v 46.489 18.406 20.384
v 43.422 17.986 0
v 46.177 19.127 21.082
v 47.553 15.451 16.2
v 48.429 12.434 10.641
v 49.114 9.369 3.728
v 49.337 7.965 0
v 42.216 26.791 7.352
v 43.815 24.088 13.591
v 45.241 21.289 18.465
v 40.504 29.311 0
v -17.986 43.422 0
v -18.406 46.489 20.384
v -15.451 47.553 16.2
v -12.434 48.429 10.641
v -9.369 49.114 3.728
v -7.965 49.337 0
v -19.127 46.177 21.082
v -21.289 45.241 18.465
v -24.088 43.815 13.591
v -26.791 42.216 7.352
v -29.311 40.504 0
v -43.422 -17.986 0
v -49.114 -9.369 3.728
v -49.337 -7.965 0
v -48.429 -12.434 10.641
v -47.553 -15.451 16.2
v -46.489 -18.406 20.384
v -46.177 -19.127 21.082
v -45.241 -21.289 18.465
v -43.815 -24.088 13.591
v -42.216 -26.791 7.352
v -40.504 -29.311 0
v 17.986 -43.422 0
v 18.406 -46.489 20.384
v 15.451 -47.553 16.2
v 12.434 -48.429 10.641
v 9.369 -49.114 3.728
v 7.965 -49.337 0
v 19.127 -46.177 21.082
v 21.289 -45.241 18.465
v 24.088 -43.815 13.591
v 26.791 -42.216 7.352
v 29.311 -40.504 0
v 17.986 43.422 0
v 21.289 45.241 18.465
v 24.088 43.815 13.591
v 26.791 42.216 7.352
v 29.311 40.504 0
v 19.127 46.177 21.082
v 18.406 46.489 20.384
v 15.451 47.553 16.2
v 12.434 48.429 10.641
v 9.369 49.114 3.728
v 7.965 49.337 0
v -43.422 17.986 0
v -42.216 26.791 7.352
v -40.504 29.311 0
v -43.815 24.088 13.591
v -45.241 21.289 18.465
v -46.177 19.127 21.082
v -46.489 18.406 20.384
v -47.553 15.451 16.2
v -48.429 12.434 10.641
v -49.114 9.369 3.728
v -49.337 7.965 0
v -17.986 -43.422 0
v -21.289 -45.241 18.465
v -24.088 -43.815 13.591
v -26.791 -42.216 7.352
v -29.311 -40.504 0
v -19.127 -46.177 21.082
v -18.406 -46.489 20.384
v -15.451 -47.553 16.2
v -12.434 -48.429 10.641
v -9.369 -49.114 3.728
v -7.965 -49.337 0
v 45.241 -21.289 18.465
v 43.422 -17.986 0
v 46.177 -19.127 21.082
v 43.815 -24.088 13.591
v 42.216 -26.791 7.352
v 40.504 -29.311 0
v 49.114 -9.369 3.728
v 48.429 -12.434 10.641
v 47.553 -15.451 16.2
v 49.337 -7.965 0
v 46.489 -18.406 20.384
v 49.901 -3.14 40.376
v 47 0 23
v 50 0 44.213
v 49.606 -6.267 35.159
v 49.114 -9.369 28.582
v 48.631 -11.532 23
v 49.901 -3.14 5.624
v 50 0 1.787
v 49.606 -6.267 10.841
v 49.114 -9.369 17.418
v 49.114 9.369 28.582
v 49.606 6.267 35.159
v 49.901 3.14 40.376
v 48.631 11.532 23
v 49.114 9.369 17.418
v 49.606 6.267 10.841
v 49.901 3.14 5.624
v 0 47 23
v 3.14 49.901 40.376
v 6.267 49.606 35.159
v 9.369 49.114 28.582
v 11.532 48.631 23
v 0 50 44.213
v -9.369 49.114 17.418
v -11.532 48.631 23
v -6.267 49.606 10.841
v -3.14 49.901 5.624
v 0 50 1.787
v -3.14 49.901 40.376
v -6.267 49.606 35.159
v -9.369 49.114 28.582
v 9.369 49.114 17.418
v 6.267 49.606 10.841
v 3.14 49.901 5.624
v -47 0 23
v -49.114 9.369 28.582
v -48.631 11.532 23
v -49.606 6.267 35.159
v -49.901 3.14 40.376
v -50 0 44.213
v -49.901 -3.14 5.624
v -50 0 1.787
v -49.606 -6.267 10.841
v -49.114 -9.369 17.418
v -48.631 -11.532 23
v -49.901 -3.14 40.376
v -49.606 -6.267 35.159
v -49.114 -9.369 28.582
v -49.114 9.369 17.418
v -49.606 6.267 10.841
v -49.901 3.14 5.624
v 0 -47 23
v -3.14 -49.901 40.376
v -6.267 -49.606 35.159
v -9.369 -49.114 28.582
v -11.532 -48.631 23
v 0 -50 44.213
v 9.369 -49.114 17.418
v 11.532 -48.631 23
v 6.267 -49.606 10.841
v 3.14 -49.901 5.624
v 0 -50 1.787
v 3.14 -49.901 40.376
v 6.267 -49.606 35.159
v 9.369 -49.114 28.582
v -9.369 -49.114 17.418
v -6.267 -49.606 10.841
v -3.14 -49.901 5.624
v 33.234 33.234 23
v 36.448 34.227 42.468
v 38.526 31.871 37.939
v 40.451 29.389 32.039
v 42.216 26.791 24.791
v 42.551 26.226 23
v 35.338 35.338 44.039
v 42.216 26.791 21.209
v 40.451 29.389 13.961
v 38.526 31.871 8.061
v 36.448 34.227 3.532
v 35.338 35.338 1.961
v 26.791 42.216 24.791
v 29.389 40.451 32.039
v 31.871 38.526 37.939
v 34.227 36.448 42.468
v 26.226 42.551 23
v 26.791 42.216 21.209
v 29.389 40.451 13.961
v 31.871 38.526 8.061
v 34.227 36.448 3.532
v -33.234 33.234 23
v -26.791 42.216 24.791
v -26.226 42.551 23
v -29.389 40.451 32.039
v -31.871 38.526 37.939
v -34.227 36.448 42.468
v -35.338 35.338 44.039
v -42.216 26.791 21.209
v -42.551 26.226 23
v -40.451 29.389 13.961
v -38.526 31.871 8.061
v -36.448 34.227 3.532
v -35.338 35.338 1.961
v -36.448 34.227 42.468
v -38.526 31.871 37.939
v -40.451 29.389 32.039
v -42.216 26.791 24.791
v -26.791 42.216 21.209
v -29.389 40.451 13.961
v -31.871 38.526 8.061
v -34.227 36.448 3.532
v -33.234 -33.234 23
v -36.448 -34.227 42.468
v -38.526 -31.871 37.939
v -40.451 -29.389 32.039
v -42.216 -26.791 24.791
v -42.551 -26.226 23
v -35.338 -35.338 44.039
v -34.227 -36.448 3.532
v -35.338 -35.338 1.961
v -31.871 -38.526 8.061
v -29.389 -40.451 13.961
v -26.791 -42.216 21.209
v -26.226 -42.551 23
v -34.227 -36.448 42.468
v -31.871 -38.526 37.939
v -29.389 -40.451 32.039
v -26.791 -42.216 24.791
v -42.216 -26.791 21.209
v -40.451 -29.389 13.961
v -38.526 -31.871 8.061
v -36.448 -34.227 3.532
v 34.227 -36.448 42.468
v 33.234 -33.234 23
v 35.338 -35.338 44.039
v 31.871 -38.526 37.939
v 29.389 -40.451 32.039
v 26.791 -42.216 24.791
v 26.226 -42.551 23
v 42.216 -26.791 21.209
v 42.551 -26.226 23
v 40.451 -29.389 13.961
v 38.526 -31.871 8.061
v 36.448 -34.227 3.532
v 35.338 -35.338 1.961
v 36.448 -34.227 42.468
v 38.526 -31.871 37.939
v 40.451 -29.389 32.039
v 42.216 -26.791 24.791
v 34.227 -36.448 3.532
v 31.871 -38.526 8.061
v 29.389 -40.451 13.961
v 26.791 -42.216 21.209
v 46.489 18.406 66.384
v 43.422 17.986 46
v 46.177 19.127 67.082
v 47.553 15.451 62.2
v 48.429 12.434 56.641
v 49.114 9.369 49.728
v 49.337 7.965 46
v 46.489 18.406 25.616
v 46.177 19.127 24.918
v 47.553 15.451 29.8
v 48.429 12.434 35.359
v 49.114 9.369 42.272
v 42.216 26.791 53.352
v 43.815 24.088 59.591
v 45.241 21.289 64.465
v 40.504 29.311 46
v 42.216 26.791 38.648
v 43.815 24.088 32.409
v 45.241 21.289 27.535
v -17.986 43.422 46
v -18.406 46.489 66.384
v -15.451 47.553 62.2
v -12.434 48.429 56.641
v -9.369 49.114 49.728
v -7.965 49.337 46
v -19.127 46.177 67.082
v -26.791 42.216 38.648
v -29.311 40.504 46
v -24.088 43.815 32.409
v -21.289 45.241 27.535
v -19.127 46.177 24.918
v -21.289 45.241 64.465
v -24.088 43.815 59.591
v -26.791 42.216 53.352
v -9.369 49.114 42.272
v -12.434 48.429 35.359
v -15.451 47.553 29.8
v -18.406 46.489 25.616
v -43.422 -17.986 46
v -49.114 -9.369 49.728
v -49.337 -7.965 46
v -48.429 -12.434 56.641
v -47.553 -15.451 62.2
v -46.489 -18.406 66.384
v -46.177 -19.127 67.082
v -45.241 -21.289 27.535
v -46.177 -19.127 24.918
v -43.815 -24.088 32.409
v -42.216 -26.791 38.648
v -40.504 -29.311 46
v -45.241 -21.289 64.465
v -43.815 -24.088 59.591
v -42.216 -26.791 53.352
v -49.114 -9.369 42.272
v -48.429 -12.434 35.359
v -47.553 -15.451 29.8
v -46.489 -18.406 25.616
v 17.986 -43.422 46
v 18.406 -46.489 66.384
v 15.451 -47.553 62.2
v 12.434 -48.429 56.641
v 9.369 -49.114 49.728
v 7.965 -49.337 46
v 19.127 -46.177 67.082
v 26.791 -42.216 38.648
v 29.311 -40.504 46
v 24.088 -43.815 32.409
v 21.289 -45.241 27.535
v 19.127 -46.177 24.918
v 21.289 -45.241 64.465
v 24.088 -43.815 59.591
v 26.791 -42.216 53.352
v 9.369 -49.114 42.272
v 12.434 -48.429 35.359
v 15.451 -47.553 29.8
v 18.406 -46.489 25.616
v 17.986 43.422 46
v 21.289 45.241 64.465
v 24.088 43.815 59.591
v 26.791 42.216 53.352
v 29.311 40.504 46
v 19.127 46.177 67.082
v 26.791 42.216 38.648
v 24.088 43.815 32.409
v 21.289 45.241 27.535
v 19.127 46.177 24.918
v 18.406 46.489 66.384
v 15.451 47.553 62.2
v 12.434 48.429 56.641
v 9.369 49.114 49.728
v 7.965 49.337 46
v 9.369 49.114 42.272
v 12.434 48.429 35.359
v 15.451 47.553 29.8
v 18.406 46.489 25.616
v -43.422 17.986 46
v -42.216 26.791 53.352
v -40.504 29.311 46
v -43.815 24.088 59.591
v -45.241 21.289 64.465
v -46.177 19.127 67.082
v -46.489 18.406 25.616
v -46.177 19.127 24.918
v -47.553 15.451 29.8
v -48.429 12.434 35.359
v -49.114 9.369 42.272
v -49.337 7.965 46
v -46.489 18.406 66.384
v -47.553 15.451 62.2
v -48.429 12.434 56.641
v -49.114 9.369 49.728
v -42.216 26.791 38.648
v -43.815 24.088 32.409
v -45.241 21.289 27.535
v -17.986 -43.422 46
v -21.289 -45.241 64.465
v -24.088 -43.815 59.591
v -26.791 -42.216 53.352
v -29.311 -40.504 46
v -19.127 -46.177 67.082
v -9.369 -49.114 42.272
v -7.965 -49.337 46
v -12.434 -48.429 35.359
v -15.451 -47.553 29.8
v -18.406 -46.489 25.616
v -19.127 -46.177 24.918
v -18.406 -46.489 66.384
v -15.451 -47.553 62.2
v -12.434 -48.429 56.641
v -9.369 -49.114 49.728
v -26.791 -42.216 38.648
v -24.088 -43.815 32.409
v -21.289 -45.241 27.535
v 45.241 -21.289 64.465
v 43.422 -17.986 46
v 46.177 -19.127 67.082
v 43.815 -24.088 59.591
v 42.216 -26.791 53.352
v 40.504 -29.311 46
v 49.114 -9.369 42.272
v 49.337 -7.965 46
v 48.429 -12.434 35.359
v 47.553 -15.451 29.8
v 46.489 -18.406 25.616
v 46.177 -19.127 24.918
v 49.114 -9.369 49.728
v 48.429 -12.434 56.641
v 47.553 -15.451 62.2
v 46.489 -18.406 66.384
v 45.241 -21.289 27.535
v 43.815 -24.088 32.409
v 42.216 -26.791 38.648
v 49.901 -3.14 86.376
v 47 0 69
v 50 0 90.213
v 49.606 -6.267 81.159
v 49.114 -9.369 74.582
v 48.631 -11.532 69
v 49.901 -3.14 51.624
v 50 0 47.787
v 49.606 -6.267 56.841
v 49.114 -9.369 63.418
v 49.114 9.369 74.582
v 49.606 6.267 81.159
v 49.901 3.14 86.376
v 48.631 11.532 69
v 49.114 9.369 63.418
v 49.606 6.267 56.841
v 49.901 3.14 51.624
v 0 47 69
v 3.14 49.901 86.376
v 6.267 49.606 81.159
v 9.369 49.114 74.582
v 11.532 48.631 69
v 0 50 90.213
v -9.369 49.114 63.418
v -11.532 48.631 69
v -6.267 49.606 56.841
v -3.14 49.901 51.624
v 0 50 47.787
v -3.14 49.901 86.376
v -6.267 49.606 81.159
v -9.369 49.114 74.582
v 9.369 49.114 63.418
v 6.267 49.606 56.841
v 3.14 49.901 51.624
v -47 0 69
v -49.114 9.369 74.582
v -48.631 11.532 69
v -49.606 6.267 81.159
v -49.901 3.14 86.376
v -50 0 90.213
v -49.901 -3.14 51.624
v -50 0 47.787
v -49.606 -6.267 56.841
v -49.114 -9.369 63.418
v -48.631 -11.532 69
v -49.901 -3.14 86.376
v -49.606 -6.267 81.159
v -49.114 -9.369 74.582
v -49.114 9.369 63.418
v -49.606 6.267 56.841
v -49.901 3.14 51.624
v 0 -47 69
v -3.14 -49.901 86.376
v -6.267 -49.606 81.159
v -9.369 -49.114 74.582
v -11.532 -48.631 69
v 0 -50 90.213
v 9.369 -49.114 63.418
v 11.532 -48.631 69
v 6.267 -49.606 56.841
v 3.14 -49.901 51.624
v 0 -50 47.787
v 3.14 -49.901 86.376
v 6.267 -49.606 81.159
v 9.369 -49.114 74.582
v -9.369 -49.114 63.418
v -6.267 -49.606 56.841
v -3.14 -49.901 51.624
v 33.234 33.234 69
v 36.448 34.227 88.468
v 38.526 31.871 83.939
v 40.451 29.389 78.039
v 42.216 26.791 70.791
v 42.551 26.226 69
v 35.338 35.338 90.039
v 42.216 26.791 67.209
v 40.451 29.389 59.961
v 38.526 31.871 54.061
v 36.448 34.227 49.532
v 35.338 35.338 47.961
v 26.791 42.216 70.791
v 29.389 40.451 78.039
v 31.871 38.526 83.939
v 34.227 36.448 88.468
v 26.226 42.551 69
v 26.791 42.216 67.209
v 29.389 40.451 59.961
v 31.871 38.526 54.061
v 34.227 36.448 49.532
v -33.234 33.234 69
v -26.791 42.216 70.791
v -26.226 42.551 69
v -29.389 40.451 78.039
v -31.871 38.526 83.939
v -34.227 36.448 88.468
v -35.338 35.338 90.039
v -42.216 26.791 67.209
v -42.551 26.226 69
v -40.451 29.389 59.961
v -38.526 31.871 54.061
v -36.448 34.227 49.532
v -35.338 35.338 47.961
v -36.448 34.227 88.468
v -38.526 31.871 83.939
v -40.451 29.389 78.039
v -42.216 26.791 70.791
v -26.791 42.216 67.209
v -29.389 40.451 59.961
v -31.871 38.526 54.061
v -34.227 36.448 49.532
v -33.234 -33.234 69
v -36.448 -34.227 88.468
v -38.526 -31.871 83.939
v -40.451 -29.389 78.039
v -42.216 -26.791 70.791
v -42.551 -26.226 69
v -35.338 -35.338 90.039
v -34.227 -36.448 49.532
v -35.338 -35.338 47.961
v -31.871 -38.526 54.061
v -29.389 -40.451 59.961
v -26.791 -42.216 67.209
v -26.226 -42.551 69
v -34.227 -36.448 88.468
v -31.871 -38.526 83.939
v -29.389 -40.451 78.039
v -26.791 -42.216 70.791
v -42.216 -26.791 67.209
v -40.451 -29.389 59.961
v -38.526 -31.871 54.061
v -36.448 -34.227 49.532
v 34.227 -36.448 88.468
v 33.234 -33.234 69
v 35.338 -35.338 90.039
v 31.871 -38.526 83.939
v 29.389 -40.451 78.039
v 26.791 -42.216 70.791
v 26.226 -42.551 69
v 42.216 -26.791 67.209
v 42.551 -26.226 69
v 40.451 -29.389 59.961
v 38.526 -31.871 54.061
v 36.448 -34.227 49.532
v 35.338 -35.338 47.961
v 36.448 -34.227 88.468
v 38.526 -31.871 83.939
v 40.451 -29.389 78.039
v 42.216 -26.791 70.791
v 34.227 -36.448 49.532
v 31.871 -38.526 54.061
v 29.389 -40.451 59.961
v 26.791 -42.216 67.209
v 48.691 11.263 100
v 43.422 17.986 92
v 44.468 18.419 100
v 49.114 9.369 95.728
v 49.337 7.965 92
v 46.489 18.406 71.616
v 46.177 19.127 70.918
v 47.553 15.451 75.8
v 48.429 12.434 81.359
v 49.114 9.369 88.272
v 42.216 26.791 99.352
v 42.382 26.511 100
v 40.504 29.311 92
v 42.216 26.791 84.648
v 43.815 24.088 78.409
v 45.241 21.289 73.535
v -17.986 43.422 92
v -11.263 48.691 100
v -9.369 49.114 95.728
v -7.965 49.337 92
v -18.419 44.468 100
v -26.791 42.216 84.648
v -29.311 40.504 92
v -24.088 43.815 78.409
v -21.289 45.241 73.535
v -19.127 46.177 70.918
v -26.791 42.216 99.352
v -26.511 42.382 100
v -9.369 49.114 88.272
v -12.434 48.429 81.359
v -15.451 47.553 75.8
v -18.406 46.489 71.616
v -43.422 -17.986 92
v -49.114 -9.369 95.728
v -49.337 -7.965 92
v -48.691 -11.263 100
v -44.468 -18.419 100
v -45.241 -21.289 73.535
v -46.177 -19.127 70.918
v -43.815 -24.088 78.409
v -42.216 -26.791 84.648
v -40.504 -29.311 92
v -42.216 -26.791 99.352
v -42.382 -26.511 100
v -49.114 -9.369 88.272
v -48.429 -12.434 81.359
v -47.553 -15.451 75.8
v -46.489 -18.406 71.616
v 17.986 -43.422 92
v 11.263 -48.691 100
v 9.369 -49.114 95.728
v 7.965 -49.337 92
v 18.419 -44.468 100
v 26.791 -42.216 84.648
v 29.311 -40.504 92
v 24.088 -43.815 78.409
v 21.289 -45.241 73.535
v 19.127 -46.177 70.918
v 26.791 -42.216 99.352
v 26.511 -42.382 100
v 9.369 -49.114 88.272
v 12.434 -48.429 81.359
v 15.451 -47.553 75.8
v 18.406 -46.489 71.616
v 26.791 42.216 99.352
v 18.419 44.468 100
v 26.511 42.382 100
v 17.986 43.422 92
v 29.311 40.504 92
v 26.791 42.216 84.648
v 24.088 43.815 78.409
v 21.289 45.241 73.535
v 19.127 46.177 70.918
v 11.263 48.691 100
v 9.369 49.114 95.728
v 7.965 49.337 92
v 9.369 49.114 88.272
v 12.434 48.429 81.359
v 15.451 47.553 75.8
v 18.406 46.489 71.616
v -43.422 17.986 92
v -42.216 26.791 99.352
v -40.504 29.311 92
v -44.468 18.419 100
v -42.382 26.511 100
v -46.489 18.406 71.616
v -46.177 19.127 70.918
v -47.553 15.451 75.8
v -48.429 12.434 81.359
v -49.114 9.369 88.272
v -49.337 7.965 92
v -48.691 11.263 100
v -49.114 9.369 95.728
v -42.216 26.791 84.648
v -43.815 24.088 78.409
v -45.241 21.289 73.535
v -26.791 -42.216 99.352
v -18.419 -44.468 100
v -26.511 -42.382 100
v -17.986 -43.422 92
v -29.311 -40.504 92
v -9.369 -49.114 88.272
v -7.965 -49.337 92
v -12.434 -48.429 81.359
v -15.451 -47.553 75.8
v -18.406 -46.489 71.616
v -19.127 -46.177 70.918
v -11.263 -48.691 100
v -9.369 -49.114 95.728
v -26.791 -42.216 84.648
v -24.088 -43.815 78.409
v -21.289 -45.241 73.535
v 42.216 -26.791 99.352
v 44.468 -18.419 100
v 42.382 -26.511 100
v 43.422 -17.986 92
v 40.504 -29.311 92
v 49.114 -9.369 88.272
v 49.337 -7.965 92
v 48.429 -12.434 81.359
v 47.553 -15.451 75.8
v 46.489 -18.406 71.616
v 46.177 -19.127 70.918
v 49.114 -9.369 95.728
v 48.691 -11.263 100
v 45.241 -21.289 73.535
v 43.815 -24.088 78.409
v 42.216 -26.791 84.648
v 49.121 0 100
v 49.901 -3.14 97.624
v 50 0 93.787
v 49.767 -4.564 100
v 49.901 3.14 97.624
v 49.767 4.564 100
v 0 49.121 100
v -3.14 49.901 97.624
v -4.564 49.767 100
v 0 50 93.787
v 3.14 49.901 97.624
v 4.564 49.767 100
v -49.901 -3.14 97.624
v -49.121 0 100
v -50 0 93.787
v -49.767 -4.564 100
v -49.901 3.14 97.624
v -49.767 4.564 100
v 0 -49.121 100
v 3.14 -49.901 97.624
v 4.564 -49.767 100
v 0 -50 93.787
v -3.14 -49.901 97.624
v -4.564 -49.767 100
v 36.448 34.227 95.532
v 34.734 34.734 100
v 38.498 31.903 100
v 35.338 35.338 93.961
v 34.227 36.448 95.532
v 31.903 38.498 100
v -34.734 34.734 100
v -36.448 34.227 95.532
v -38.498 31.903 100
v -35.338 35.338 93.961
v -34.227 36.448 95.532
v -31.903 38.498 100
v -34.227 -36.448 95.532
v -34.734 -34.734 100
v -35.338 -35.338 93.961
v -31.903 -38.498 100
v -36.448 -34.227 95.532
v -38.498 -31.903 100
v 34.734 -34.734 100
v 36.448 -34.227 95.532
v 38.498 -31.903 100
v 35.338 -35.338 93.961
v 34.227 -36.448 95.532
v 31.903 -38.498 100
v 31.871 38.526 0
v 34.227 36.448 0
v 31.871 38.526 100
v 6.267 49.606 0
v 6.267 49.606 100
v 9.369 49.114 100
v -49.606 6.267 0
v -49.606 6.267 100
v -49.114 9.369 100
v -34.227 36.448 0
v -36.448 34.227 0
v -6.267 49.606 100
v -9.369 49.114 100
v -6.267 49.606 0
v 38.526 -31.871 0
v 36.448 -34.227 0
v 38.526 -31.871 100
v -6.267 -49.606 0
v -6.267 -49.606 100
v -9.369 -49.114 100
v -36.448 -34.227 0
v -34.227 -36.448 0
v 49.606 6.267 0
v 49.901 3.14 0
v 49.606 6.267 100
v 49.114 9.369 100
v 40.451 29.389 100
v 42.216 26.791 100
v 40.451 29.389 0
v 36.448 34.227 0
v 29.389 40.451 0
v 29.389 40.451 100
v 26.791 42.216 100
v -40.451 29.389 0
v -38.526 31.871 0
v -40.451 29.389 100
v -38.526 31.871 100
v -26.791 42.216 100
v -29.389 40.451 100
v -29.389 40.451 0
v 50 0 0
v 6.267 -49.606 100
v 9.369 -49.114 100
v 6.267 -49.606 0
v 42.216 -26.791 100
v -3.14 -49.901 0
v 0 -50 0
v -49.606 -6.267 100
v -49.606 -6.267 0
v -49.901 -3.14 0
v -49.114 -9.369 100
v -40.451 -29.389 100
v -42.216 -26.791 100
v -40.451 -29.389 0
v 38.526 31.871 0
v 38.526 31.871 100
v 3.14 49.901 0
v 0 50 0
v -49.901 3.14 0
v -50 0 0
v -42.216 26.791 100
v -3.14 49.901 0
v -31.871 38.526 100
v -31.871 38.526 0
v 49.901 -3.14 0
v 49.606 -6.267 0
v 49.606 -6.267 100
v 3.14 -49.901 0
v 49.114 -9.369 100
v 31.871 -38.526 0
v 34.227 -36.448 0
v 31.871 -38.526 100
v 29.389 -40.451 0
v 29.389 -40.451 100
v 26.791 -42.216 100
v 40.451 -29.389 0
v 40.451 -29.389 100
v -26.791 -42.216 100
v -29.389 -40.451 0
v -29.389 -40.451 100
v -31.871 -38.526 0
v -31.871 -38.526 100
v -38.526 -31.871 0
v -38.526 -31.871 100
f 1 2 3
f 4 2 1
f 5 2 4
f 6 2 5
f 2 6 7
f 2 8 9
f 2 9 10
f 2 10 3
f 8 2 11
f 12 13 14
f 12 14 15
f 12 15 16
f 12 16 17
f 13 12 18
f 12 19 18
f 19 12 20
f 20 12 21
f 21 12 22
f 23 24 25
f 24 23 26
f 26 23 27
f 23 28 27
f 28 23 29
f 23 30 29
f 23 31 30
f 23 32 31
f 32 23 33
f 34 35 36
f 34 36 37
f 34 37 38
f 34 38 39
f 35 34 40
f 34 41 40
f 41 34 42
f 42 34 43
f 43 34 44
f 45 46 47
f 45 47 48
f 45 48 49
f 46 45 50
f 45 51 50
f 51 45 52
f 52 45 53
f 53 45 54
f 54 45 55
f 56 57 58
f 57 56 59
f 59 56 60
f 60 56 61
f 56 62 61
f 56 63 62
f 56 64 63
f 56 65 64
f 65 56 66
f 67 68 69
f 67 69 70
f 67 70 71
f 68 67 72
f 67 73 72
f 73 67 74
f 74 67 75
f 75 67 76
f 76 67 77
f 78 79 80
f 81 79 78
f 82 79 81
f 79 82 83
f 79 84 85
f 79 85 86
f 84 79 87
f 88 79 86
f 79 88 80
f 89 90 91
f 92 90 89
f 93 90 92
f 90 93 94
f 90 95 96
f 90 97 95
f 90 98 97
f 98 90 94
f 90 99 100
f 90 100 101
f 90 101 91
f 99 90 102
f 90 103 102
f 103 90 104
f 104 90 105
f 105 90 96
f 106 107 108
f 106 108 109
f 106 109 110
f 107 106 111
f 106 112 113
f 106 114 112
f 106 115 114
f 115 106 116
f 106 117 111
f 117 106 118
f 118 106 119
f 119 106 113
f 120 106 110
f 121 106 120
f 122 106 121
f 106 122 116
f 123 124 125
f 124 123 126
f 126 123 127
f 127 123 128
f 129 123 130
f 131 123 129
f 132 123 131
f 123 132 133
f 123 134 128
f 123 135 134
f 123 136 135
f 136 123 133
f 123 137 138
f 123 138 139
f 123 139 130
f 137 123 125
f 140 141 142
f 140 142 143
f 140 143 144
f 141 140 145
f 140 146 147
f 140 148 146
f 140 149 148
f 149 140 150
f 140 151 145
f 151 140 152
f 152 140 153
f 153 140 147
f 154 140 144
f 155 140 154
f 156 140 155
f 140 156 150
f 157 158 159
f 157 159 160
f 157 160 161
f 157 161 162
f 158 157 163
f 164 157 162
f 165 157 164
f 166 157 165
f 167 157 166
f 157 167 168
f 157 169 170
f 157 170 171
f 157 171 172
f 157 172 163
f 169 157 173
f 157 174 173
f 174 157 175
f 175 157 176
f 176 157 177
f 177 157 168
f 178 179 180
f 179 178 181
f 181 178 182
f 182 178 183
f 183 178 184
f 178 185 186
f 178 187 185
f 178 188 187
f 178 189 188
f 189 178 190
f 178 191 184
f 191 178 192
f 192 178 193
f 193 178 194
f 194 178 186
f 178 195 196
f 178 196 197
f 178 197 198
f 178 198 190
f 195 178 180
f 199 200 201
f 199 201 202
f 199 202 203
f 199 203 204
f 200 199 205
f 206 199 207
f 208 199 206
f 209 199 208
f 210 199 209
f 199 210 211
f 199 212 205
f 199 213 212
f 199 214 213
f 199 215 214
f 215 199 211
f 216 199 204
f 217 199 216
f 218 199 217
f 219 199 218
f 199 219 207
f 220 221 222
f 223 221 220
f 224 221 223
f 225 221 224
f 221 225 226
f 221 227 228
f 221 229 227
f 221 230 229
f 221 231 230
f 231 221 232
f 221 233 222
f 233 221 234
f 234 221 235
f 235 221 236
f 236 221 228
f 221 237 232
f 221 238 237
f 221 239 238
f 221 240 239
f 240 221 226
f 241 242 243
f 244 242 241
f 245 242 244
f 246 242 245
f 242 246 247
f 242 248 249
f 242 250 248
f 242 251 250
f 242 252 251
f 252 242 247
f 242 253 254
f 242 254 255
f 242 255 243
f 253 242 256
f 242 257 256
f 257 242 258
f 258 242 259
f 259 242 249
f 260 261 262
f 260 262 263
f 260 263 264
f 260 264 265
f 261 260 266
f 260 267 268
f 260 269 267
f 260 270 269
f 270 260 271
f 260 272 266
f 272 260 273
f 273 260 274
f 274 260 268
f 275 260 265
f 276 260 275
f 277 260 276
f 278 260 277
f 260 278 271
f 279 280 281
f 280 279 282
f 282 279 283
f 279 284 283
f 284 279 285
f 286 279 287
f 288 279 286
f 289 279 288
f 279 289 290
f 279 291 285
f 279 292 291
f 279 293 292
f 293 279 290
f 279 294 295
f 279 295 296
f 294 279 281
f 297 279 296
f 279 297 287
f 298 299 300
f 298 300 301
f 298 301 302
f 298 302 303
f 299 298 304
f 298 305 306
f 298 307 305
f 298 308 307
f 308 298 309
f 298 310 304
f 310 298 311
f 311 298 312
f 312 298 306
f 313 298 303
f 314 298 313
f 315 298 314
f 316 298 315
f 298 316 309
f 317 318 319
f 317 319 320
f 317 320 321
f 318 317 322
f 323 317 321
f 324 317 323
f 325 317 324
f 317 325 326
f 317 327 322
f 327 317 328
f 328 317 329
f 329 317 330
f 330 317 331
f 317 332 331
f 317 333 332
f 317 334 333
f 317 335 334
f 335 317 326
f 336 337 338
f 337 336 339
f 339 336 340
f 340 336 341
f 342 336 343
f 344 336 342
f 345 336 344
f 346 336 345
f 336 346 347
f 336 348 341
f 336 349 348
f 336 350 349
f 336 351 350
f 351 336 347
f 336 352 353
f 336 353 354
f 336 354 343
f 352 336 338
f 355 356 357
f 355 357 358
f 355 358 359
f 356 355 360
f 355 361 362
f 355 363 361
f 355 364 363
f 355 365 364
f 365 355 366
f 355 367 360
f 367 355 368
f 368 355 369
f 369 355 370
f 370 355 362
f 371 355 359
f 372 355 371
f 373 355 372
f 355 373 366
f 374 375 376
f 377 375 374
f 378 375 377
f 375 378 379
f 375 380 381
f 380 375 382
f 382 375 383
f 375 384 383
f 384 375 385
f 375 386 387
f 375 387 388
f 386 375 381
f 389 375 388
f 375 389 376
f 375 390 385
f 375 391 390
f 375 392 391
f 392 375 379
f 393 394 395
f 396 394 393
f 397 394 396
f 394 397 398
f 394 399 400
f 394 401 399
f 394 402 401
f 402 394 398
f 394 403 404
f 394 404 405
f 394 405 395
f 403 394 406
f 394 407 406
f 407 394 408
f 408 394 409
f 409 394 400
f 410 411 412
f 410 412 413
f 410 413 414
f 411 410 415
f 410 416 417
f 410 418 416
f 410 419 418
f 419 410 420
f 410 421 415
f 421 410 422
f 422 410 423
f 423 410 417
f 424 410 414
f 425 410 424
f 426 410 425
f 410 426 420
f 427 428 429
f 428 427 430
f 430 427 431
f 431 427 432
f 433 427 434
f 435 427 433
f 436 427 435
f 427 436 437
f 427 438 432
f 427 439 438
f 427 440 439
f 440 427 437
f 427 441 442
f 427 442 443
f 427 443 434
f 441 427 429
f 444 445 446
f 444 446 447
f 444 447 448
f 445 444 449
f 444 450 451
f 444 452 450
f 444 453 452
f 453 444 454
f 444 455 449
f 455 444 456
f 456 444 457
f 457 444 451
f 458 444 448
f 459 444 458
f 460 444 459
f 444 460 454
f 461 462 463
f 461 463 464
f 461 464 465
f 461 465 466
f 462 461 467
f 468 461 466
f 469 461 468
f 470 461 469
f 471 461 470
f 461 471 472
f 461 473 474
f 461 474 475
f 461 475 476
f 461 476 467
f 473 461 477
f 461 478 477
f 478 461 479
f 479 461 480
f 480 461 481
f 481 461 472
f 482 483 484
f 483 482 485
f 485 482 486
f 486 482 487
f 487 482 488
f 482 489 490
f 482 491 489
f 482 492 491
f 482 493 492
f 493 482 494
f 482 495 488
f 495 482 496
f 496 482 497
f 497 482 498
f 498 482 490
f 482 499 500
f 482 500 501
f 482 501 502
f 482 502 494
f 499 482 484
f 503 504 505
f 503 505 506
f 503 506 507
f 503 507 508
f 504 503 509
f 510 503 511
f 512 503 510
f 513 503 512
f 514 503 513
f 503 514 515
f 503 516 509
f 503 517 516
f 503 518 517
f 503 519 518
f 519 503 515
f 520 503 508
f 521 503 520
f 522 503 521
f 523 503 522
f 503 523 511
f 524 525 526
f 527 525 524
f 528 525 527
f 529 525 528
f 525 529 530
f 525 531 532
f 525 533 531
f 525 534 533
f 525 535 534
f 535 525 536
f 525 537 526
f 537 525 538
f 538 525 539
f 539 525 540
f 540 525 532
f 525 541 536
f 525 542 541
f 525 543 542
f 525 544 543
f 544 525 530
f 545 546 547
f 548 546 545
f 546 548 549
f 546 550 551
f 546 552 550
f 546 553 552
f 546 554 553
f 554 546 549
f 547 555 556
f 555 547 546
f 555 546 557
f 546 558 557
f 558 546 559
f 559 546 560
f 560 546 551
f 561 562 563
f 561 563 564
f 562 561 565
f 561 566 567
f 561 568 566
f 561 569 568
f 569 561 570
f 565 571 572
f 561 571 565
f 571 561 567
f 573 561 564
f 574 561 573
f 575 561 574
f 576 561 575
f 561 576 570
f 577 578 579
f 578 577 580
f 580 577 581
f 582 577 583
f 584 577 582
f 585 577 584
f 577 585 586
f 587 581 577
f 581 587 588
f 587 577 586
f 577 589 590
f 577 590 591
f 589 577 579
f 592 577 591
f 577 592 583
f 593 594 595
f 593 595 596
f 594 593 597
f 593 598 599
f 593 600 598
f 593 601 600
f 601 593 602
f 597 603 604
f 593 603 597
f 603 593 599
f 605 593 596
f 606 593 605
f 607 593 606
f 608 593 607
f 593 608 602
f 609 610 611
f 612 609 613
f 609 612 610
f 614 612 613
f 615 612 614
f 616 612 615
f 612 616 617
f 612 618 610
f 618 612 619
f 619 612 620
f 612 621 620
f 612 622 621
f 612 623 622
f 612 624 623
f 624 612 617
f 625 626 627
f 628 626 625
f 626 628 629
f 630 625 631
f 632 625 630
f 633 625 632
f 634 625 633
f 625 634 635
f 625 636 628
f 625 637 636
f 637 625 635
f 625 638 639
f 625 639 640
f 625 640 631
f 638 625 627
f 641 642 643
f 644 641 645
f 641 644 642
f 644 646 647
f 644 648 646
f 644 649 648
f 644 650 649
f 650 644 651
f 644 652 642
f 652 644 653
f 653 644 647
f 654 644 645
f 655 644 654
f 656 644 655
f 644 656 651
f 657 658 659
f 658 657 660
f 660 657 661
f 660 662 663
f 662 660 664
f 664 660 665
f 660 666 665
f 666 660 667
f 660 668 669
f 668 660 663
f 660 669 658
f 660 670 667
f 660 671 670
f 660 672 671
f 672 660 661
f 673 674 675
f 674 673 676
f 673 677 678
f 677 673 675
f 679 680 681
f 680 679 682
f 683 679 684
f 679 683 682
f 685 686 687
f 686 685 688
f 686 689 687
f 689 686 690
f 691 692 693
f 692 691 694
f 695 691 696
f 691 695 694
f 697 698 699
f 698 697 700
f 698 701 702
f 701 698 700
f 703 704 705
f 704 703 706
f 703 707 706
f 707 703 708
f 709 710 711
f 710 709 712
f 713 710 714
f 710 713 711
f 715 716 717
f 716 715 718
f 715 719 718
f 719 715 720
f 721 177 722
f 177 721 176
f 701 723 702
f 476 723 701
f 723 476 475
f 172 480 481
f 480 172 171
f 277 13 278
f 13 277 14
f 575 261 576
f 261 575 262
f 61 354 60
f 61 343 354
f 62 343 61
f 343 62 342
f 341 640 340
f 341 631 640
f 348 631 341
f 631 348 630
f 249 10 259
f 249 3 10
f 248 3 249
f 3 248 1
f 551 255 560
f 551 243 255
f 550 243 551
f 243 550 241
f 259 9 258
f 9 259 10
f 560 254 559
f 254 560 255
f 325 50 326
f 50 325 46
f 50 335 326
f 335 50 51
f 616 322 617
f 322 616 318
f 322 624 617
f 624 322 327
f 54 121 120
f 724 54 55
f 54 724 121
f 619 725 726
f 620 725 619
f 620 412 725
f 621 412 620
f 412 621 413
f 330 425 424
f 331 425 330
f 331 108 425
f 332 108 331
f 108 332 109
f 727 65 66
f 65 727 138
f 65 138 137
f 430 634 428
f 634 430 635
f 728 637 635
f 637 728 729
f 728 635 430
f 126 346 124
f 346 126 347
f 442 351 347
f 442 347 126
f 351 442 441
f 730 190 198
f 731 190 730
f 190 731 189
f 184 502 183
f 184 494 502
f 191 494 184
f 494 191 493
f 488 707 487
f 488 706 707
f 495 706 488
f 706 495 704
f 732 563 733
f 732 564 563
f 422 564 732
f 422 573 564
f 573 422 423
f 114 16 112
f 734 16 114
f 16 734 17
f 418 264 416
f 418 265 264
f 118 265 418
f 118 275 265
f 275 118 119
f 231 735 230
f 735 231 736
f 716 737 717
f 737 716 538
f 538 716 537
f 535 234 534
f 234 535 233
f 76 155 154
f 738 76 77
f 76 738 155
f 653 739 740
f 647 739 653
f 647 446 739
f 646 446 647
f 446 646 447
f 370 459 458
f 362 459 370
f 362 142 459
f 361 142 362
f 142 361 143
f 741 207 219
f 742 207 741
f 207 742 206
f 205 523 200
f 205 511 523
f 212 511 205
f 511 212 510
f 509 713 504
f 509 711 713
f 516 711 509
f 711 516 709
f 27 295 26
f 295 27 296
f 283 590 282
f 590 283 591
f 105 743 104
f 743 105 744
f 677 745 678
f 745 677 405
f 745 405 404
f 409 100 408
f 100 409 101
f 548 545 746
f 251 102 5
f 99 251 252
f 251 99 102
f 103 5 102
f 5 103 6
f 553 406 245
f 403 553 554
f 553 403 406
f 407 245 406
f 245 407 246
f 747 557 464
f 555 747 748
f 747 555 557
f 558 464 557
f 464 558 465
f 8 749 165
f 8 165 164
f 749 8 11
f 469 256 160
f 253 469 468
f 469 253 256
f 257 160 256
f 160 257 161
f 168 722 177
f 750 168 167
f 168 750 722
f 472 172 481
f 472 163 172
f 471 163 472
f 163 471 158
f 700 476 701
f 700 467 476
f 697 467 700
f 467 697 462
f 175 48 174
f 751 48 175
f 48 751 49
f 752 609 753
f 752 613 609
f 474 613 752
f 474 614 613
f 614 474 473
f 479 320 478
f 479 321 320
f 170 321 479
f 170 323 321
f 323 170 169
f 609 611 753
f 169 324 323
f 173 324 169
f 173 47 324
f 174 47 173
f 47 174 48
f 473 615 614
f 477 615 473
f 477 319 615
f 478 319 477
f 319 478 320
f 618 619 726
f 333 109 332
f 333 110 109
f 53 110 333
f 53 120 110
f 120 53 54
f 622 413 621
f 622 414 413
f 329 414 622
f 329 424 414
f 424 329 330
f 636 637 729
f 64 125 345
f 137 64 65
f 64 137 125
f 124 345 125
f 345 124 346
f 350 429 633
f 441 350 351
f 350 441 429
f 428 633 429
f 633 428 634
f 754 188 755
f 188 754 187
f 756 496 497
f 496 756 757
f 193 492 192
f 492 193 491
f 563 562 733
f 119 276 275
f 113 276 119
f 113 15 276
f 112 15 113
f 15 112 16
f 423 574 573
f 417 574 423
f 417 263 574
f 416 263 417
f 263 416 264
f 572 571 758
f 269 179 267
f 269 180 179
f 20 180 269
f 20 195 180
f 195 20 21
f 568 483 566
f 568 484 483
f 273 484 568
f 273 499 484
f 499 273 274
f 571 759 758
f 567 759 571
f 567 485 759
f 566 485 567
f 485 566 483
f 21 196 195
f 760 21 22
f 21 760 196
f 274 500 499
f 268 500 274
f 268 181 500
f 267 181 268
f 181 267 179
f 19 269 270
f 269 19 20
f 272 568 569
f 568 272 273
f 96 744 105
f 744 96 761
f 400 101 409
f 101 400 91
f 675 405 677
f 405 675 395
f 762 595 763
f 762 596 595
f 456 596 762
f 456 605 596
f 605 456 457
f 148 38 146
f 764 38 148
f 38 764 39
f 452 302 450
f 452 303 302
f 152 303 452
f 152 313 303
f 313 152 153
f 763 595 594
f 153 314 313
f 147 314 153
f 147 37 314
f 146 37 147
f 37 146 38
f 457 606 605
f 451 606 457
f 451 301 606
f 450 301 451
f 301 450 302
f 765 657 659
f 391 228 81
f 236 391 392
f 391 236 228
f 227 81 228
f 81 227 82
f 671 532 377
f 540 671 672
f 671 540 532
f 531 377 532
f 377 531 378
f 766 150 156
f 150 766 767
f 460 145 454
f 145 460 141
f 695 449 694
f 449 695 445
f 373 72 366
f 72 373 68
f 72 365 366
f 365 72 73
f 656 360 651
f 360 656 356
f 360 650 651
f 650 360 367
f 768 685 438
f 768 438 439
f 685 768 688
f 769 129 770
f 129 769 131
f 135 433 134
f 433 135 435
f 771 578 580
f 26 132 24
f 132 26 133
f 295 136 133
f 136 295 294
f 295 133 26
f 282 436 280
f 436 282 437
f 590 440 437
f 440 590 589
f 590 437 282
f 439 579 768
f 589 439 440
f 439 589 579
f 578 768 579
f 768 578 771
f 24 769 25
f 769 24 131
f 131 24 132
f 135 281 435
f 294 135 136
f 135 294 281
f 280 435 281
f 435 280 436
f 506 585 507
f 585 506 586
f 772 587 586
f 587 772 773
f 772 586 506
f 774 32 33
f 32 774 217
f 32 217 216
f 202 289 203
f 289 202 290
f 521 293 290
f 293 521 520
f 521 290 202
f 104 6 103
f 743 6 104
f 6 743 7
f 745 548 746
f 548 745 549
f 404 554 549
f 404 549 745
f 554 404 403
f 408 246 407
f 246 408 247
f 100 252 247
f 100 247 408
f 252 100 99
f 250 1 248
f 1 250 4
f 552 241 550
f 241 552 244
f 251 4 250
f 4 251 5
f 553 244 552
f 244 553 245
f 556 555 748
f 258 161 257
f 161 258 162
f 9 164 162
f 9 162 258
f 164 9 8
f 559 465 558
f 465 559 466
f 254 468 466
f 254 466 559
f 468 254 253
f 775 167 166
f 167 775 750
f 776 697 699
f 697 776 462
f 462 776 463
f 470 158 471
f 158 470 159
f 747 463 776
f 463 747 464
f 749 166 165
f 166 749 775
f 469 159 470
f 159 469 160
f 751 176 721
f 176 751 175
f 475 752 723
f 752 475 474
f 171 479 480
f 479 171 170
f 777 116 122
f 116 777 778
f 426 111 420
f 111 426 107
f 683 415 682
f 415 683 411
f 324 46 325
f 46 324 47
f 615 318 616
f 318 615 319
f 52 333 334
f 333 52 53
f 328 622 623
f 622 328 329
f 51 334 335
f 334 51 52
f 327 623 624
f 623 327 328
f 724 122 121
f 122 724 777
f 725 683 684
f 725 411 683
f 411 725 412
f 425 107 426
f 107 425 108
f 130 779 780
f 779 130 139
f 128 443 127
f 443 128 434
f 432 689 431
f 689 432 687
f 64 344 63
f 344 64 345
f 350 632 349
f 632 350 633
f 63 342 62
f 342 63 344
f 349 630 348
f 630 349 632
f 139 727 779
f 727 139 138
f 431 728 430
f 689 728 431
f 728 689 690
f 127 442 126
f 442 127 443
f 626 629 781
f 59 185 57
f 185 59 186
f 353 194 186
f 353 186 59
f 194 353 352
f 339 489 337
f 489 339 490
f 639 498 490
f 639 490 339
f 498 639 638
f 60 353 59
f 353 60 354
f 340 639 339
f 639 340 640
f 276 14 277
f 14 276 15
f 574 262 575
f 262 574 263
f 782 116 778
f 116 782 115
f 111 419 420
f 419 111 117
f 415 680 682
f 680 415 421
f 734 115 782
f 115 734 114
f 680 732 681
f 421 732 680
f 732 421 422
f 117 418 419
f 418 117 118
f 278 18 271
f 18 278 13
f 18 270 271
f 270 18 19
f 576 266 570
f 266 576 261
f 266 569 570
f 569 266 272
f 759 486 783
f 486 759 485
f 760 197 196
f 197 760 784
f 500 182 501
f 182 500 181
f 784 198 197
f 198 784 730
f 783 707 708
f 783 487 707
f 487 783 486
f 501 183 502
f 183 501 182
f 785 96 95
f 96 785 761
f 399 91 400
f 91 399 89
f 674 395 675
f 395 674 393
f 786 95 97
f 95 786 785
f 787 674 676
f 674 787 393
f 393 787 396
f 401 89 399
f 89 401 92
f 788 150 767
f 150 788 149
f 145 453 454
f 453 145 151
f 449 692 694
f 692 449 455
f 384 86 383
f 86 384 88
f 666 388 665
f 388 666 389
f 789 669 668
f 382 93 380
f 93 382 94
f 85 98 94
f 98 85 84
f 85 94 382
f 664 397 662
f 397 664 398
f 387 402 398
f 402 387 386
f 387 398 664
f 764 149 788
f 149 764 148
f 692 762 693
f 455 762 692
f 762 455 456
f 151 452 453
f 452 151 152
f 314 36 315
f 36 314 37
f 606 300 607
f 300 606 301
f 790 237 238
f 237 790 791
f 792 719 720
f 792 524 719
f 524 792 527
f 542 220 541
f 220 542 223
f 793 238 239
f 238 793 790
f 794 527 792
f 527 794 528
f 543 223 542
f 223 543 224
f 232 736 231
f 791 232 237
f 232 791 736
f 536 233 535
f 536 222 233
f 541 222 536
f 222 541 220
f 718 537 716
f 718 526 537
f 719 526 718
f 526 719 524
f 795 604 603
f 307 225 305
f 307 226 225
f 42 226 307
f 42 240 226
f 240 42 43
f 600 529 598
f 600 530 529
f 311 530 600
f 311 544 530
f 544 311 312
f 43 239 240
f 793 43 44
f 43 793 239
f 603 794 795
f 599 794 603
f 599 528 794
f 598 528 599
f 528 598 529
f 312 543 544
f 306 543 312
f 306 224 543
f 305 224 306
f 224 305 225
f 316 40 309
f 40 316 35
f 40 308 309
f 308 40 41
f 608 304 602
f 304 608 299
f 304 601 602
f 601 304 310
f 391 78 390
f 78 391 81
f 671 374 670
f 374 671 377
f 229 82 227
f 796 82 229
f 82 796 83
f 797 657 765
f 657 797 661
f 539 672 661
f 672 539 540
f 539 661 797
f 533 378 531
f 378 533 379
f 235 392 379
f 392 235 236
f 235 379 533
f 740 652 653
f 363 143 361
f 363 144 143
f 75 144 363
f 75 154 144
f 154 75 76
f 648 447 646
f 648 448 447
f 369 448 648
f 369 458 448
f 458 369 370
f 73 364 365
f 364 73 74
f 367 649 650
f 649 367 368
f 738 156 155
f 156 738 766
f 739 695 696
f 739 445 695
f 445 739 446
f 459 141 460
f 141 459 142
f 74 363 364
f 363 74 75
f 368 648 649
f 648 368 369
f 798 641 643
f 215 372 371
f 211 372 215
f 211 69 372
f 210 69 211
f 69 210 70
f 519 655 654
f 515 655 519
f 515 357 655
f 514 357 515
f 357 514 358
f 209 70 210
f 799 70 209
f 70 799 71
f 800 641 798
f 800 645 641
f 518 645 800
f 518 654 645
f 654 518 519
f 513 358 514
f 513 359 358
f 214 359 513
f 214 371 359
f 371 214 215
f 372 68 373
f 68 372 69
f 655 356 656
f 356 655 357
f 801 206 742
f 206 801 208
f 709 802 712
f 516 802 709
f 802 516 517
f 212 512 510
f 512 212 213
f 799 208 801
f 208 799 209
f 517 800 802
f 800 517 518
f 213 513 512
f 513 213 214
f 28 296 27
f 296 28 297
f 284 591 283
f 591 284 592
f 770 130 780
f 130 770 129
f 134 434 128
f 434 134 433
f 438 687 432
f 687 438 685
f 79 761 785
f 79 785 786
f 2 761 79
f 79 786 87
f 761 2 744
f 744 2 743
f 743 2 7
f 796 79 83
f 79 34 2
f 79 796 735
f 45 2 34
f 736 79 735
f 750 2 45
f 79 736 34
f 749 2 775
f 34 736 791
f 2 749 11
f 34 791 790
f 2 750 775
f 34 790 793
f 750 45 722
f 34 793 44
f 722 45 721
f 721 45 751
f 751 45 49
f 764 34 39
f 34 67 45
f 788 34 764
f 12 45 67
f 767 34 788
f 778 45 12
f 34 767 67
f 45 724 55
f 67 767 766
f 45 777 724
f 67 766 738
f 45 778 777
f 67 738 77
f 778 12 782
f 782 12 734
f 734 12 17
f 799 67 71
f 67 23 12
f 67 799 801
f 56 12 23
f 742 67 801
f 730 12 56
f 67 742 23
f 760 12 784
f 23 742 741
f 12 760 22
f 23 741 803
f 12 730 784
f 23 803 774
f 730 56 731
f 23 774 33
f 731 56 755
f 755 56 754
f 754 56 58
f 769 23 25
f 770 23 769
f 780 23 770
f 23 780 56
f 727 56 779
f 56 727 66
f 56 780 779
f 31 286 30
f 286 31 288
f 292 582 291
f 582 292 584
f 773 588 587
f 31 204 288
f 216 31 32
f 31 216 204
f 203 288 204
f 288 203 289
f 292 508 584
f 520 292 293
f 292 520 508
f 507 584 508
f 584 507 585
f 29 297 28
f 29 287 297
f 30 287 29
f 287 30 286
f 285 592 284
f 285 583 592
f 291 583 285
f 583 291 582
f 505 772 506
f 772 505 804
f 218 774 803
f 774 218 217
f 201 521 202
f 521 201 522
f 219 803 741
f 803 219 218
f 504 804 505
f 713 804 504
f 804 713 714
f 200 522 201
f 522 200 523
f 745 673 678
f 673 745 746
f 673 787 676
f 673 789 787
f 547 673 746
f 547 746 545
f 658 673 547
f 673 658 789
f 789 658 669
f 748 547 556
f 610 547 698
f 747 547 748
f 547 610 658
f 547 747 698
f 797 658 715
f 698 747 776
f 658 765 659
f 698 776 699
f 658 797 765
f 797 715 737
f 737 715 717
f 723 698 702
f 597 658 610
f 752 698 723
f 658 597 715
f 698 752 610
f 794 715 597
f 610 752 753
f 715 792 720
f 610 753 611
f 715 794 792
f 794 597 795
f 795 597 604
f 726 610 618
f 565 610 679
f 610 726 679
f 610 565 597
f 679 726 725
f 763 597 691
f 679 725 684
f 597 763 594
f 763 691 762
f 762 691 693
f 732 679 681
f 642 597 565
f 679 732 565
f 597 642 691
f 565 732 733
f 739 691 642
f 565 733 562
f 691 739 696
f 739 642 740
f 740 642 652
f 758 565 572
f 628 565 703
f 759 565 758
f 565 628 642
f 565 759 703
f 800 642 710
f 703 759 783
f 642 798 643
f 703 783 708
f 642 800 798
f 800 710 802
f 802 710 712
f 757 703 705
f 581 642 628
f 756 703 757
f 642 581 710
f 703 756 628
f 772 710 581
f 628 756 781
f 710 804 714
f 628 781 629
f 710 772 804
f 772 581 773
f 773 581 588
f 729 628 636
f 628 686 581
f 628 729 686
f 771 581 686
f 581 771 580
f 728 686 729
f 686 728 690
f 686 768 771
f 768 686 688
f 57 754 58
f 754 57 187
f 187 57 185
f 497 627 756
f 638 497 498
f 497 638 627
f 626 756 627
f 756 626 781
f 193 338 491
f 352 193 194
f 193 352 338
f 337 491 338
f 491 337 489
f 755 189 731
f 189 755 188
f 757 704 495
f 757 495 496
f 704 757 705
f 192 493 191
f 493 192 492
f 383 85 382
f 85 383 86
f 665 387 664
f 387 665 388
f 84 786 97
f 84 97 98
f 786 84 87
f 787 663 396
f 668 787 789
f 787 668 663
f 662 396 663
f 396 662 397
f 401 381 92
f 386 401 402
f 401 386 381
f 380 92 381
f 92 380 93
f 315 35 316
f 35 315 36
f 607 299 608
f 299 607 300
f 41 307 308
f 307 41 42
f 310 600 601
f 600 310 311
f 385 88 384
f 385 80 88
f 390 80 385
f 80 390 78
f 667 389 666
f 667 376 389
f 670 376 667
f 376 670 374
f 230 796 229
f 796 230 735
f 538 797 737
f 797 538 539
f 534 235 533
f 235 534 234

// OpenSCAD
mainWidth=100;
mainHeight=100;
testWidth=56;
$fn=100;
prismDepth=5;
prismWidth=50;
prismRad=47;
numCircle=4;
numHigh=8;
zTrans=23;
module prismCut(radius,degree,tilt){

rotate([0,0,degree])
rotate([tilt,0,0])
translate([prismDepth+radius,0,0])
rotate([0,-90,0])
resize([prismWidth,prismWidth,prismDepth])
polyhedron(
  points=[ [10,10,0],[10,-10,0],[-10,-10,0],[-10,10,0], // the four points at base
           [0,0,10]  ],                                 // the apex point 
  faces=[ [0,1,4],[1,2,4],[2,3,4],[3,0,4],              // each triangle side
              [1,0,3],[2,1,3] ]                         // two triangles for square base
 );
}

difference(){
cylinder(h=100,r=50);
    union(){
for(b=[1:1:numHigh])
translate([0,0,(b-1)*zTrans])
rotate([0,0,(b%2)*360/numCircle/4])
union(){
rotate([0,0,360/numCircle/2])
for(a=[1:1:numCircle])
prismCut(prismRad,(a-1)/numCircle*360,45);
for(a=[1:1:numCircle])
prismCut(prismRad,(a-1)/numCircle*360,45);
}

}
}
